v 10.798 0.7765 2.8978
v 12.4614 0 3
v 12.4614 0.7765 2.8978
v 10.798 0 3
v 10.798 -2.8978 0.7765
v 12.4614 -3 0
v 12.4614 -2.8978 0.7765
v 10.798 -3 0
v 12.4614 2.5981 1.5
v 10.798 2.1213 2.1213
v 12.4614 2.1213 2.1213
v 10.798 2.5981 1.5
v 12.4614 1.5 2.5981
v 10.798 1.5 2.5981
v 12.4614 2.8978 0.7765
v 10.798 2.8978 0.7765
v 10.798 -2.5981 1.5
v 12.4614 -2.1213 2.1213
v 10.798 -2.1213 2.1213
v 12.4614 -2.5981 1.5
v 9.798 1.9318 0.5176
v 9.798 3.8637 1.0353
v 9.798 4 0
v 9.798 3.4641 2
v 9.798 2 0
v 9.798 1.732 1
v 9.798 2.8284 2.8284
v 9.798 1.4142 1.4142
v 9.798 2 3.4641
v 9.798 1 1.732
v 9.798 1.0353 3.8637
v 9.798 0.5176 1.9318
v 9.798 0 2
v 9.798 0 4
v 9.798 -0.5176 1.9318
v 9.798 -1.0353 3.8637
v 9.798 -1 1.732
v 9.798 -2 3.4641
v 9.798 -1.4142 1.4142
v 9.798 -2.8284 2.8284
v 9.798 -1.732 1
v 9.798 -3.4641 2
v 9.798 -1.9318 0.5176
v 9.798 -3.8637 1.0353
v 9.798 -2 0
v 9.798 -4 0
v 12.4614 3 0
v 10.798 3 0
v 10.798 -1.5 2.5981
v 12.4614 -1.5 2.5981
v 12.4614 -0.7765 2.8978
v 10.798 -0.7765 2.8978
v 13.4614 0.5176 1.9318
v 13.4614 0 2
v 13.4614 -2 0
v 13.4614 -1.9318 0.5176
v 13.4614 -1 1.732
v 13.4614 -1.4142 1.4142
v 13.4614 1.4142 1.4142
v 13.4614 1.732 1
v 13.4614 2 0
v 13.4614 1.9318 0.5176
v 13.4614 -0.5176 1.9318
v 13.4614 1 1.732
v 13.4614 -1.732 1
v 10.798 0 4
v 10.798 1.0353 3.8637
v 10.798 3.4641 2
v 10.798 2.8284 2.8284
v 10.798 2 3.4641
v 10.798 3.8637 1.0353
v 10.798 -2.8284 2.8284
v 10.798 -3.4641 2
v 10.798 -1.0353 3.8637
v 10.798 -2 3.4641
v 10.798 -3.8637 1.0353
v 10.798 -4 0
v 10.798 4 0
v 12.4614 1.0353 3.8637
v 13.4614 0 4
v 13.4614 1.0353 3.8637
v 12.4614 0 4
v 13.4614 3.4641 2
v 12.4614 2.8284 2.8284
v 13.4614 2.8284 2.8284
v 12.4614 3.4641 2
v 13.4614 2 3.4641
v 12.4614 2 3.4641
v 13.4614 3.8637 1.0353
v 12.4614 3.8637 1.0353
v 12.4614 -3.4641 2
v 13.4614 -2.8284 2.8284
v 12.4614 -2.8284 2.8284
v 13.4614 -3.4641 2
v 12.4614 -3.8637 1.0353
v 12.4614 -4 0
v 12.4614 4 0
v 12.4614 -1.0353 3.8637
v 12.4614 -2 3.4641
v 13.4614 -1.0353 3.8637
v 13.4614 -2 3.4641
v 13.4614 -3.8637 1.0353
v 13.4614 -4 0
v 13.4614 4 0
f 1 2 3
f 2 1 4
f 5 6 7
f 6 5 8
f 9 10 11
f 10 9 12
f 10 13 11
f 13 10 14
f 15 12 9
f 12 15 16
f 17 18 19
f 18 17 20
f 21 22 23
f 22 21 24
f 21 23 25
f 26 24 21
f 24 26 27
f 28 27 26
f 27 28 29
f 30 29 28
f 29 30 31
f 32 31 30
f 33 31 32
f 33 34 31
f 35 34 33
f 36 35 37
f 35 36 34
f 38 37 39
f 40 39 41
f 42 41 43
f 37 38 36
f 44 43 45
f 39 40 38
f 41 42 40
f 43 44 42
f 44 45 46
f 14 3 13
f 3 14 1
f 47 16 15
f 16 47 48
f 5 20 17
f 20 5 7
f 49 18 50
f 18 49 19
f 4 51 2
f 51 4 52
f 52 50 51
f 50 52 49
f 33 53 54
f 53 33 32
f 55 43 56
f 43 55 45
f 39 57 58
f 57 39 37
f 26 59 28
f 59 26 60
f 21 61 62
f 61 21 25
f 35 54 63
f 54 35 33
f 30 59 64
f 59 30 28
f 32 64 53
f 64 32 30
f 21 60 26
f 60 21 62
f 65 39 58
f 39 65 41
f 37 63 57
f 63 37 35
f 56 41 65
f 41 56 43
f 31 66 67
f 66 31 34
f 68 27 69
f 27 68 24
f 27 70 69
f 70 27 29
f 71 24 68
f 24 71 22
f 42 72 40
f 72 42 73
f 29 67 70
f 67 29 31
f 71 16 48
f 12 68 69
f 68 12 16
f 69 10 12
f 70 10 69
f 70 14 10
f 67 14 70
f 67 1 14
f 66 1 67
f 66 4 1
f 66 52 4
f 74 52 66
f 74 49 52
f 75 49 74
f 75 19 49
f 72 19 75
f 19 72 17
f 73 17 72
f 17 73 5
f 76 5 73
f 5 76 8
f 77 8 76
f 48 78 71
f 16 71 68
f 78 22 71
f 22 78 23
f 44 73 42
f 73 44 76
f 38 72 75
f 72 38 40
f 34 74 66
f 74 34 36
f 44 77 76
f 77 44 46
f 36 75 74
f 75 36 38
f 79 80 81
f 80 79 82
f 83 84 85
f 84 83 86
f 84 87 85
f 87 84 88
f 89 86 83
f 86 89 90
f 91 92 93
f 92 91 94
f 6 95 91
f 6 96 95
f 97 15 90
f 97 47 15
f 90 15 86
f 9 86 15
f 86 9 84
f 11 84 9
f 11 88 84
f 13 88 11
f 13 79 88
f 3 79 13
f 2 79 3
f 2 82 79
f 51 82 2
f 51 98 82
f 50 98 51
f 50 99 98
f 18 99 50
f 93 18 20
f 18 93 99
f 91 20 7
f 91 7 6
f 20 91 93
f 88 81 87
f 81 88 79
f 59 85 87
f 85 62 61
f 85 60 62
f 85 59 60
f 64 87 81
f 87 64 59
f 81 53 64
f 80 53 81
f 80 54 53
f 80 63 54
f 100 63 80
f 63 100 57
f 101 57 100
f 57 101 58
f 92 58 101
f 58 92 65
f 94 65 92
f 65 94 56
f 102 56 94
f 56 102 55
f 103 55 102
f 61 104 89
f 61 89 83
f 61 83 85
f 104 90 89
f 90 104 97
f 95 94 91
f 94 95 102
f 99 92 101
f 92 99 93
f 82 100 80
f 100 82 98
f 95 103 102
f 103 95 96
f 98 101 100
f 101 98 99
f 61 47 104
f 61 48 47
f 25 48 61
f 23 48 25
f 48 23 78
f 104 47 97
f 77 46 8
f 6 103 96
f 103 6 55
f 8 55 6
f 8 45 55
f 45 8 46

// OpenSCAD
// file: ../build_environments.scad
// build_environments.scad: modules to build level sections
//

module pool(diameter=10.0, wall_height=2.0, step_width=3.0, connections=[])
{
    difference() {
        union() {
        difference() {
            cylinder(h=0.5,r1=diameter+step_width,r2=diameter+step_width,$fn=48);
            translate([0,0,-0.1])
                cylinder(h=0.7,r1=diameter,r2=diameter,$fn=48);
        }
        difference() {
            cylinder(h=wall_height,r1=diameter+step_width+1.0,r2=diameter+step_width+1.0,$fn=48);
            translate([0,0,-0.1])
                cylinder(h=wall_height+0.2,r1=diameter+step_width,r2=diameter+step_width,$fn=48);
        }
        }
    
        for (c = connections)
        {
            rotate([0,90,0]) {
                angle = atan2(c[1],c[0]);
                rotate([-angle,0,0]) {
                    cylinder(h=diameter+5.0,r1=c[2],r2=c[2],$fn=48);
                }
            }
        }
    }
}

module straight(length=10.0, width=2.0, dy1=0.0, dy2=0.0, dz=0.0)
{
    dims = [0, 0, 0, 0, 0, (dz/length)];
    matrix = [
        [ 1, dims[0], dims[1], 0 ],
        [ dims[2], 1, dims[4], 0 ],
        [ dims[5], dims[3], 1, 0 ],
        [ 0, 0, 0, 1 ]
    ];
    multmatrix(matrix)
    difference() {
        translate([dy1,0,0])
        union() {
            rotate([0,90,0]) {
                difference() {
                    cylinder(h=(length-dy1-dy2),r1=width+1.0,r2=width+1.0,$fn=24);
                    translate([0,0,-0.1])
                        cylinder(h=(length-dy1-dy2+0.2),r1=width,r2=width,$fn=24);
                }
                difference() {
                    cylinder(h=1.0,r1=width+2.0,r2=width+2.0,$fn=24);
                    translate([0,0,-0.1])
                        cylinder(h=1.2,r1=width,r2=width,$fn=24);
                }
                translate([0,0,(length-dy1-dy2)-1.0]) {
                    difference() {
                        cylinder(h=1.0,r1=width+2.0,r2=width+2.0,$fn=24);
                        translate([0,0,-0.1])
                            cylinder(h=1.2,r1=width,r2=width,$fn=24);
                    }
                }
            }
        }
        translate([0,0,-(2*width+4.0)/2])
            cube([3*length,3*length,2*width+4.0],center=true);
    }
}

module curve(p0=[0,0], center=[0,0], dir=1, angle=0.0, width=2.0)
{
    radius = sqrt((p0[0]-center[0])*(p0[0]-center[0]) + (p0[1]-center[1])*(p0[1]-center[1]));
    if (dir == 0) {
        difference() {
            rotate([0,0,-90])
            difference() {
                rotate_extrude(angle = angle, convexity = 10, $fn=32)
                    translate([radius, 0, 0])
                        circle(r = width+1.0,$fn=24);
                rotate([0,0,-1.0])
                    rotate_extrude(angle = angle+2.0, convexity = 10, $fn=32)
                        translate([radius, 0, 0])
                            circle(r = width,$fn=24);
            }
            translate([0,0,-(2*width+4.0)/2])
                cube([5*radius,5*radius,2*width+4.0],center=true);
        }
    }
    else {
        difference() {
            rotate([0,0,90])
            difference() {
                rotate_extrude(angle = -angle, convexity = 10, $fn=32)
                    translate([radius, 0, 0])
                        circle(r = width+1.0,$fn=24);
                rotate([0,0,1.0])
                    rotate_extrude(angle = -angle-2.0, convexity = 10, $fn=32)
                        translate([radius, 0, 0])
                            circle(r = width,$fn=24);
            }
            translate([0,0,-(2*width+4.0)/2])
                cube([5*radius,5*radius,2*width+4.0],center=true);
        }
    }

}

// test pool
//pool(diameter=12.0000, wall_height=3.0000, step_width=3.0000, connections=[[0.0000,-26.0000,2.0000], [23.6074,0.0000,2.0000]]);

// test straight, slope
//straight(length=26.0000, width=2.0000, dy1=11.8322, dy2=6.7082, dz=0.0000);
//straight(length=29.1549, width=12.0000, dy1=0.0000, dy2=0.0000, dz=-15.0000);

// test curve
//curve(p0=[23.6074, 0.0000], center=[23.6074, 5.0000], dir=0, angle=60.1011, width=2.0000);
//curve(p0=[33.6426, 12.4219], center=[37.9771, 9.9295], dir=1, angle=120.4627, width=2.0000);
// main file
use <../build_environments.scad>;
straight(length=23.2594, width=2.0000, dy1=9.7980, dy2=9.7980, dz=0.0000);
